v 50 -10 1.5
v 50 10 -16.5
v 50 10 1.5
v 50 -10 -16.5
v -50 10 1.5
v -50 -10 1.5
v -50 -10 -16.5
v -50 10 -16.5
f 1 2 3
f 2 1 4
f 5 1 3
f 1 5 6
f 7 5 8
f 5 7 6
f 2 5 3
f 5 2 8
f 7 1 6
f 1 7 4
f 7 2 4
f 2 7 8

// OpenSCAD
// Define the dimensions of the rectangular plate
plate_length = 100;  // Length of the plate
plate_width = 20;    // Width of the plate
plate_thickness = 3; // Thickness of the plate (reduced to match original model)
plate_spacing = 0;   // Spacing between each plate (eliminated to align plates flat and parallel)

// Function to create a rectangular plate
module rectangular_plate() {
    cube([plate_length, plate_width, plate_thickness], center = true);
}

// Assemble the layers of rectangular plates
module assembly() {
    for (i = [0:5]) {
        translate([0, 0, -i * plate_thickness])  // Adjusted to eliminate gaps and ensure perfect alignment
            rectangular_plate();
    }
}

// Render the assembly
assembly();
